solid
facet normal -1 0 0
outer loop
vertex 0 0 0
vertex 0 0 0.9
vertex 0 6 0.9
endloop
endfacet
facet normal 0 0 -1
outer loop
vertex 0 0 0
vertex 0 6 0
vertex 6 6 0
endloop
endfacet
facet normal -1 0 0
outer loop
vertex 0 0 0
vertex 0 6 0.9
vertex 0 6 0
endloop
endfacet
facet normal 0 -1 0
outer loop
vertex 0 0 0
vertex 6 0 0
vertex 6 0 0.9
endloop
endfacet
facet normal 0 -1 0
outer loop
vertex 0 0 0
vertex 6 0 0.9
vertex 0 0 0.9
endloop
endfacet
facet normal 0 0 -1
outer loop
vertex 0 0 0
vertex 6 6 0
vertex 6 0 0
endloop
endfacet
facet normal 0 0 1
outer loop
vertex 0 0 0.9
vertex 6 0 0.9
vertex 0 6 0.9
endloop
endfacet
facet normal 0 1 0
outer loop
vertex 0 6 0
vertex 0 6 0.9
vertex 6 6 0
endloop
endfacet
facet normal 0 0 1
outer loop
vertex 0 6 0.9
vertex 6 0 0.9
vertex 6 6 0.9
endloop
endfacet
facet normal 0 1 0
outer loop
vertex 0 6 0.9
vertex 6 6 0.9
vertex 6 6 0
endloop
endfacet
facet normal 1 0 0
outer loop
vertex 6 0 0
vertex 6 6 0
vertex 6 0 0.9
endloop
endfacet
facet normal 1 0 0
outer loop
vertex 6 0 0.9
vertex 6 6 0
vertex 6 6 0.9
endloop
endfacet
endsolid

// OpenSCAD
/* Warning, this is a very basic generator with a lot of approximation 
input data : [VQFN, SCB, 6x6x0.9mm, 48, , A, C04-21406A]
generated by com.zoubworld.electronics.cad.model3d.Basic
Date : Sun Feb 15 10:50:49 CET 2026
*/

//body
color("black")
translate([0,0,0])
cube([6.0,6.0,0.9], center=false);
